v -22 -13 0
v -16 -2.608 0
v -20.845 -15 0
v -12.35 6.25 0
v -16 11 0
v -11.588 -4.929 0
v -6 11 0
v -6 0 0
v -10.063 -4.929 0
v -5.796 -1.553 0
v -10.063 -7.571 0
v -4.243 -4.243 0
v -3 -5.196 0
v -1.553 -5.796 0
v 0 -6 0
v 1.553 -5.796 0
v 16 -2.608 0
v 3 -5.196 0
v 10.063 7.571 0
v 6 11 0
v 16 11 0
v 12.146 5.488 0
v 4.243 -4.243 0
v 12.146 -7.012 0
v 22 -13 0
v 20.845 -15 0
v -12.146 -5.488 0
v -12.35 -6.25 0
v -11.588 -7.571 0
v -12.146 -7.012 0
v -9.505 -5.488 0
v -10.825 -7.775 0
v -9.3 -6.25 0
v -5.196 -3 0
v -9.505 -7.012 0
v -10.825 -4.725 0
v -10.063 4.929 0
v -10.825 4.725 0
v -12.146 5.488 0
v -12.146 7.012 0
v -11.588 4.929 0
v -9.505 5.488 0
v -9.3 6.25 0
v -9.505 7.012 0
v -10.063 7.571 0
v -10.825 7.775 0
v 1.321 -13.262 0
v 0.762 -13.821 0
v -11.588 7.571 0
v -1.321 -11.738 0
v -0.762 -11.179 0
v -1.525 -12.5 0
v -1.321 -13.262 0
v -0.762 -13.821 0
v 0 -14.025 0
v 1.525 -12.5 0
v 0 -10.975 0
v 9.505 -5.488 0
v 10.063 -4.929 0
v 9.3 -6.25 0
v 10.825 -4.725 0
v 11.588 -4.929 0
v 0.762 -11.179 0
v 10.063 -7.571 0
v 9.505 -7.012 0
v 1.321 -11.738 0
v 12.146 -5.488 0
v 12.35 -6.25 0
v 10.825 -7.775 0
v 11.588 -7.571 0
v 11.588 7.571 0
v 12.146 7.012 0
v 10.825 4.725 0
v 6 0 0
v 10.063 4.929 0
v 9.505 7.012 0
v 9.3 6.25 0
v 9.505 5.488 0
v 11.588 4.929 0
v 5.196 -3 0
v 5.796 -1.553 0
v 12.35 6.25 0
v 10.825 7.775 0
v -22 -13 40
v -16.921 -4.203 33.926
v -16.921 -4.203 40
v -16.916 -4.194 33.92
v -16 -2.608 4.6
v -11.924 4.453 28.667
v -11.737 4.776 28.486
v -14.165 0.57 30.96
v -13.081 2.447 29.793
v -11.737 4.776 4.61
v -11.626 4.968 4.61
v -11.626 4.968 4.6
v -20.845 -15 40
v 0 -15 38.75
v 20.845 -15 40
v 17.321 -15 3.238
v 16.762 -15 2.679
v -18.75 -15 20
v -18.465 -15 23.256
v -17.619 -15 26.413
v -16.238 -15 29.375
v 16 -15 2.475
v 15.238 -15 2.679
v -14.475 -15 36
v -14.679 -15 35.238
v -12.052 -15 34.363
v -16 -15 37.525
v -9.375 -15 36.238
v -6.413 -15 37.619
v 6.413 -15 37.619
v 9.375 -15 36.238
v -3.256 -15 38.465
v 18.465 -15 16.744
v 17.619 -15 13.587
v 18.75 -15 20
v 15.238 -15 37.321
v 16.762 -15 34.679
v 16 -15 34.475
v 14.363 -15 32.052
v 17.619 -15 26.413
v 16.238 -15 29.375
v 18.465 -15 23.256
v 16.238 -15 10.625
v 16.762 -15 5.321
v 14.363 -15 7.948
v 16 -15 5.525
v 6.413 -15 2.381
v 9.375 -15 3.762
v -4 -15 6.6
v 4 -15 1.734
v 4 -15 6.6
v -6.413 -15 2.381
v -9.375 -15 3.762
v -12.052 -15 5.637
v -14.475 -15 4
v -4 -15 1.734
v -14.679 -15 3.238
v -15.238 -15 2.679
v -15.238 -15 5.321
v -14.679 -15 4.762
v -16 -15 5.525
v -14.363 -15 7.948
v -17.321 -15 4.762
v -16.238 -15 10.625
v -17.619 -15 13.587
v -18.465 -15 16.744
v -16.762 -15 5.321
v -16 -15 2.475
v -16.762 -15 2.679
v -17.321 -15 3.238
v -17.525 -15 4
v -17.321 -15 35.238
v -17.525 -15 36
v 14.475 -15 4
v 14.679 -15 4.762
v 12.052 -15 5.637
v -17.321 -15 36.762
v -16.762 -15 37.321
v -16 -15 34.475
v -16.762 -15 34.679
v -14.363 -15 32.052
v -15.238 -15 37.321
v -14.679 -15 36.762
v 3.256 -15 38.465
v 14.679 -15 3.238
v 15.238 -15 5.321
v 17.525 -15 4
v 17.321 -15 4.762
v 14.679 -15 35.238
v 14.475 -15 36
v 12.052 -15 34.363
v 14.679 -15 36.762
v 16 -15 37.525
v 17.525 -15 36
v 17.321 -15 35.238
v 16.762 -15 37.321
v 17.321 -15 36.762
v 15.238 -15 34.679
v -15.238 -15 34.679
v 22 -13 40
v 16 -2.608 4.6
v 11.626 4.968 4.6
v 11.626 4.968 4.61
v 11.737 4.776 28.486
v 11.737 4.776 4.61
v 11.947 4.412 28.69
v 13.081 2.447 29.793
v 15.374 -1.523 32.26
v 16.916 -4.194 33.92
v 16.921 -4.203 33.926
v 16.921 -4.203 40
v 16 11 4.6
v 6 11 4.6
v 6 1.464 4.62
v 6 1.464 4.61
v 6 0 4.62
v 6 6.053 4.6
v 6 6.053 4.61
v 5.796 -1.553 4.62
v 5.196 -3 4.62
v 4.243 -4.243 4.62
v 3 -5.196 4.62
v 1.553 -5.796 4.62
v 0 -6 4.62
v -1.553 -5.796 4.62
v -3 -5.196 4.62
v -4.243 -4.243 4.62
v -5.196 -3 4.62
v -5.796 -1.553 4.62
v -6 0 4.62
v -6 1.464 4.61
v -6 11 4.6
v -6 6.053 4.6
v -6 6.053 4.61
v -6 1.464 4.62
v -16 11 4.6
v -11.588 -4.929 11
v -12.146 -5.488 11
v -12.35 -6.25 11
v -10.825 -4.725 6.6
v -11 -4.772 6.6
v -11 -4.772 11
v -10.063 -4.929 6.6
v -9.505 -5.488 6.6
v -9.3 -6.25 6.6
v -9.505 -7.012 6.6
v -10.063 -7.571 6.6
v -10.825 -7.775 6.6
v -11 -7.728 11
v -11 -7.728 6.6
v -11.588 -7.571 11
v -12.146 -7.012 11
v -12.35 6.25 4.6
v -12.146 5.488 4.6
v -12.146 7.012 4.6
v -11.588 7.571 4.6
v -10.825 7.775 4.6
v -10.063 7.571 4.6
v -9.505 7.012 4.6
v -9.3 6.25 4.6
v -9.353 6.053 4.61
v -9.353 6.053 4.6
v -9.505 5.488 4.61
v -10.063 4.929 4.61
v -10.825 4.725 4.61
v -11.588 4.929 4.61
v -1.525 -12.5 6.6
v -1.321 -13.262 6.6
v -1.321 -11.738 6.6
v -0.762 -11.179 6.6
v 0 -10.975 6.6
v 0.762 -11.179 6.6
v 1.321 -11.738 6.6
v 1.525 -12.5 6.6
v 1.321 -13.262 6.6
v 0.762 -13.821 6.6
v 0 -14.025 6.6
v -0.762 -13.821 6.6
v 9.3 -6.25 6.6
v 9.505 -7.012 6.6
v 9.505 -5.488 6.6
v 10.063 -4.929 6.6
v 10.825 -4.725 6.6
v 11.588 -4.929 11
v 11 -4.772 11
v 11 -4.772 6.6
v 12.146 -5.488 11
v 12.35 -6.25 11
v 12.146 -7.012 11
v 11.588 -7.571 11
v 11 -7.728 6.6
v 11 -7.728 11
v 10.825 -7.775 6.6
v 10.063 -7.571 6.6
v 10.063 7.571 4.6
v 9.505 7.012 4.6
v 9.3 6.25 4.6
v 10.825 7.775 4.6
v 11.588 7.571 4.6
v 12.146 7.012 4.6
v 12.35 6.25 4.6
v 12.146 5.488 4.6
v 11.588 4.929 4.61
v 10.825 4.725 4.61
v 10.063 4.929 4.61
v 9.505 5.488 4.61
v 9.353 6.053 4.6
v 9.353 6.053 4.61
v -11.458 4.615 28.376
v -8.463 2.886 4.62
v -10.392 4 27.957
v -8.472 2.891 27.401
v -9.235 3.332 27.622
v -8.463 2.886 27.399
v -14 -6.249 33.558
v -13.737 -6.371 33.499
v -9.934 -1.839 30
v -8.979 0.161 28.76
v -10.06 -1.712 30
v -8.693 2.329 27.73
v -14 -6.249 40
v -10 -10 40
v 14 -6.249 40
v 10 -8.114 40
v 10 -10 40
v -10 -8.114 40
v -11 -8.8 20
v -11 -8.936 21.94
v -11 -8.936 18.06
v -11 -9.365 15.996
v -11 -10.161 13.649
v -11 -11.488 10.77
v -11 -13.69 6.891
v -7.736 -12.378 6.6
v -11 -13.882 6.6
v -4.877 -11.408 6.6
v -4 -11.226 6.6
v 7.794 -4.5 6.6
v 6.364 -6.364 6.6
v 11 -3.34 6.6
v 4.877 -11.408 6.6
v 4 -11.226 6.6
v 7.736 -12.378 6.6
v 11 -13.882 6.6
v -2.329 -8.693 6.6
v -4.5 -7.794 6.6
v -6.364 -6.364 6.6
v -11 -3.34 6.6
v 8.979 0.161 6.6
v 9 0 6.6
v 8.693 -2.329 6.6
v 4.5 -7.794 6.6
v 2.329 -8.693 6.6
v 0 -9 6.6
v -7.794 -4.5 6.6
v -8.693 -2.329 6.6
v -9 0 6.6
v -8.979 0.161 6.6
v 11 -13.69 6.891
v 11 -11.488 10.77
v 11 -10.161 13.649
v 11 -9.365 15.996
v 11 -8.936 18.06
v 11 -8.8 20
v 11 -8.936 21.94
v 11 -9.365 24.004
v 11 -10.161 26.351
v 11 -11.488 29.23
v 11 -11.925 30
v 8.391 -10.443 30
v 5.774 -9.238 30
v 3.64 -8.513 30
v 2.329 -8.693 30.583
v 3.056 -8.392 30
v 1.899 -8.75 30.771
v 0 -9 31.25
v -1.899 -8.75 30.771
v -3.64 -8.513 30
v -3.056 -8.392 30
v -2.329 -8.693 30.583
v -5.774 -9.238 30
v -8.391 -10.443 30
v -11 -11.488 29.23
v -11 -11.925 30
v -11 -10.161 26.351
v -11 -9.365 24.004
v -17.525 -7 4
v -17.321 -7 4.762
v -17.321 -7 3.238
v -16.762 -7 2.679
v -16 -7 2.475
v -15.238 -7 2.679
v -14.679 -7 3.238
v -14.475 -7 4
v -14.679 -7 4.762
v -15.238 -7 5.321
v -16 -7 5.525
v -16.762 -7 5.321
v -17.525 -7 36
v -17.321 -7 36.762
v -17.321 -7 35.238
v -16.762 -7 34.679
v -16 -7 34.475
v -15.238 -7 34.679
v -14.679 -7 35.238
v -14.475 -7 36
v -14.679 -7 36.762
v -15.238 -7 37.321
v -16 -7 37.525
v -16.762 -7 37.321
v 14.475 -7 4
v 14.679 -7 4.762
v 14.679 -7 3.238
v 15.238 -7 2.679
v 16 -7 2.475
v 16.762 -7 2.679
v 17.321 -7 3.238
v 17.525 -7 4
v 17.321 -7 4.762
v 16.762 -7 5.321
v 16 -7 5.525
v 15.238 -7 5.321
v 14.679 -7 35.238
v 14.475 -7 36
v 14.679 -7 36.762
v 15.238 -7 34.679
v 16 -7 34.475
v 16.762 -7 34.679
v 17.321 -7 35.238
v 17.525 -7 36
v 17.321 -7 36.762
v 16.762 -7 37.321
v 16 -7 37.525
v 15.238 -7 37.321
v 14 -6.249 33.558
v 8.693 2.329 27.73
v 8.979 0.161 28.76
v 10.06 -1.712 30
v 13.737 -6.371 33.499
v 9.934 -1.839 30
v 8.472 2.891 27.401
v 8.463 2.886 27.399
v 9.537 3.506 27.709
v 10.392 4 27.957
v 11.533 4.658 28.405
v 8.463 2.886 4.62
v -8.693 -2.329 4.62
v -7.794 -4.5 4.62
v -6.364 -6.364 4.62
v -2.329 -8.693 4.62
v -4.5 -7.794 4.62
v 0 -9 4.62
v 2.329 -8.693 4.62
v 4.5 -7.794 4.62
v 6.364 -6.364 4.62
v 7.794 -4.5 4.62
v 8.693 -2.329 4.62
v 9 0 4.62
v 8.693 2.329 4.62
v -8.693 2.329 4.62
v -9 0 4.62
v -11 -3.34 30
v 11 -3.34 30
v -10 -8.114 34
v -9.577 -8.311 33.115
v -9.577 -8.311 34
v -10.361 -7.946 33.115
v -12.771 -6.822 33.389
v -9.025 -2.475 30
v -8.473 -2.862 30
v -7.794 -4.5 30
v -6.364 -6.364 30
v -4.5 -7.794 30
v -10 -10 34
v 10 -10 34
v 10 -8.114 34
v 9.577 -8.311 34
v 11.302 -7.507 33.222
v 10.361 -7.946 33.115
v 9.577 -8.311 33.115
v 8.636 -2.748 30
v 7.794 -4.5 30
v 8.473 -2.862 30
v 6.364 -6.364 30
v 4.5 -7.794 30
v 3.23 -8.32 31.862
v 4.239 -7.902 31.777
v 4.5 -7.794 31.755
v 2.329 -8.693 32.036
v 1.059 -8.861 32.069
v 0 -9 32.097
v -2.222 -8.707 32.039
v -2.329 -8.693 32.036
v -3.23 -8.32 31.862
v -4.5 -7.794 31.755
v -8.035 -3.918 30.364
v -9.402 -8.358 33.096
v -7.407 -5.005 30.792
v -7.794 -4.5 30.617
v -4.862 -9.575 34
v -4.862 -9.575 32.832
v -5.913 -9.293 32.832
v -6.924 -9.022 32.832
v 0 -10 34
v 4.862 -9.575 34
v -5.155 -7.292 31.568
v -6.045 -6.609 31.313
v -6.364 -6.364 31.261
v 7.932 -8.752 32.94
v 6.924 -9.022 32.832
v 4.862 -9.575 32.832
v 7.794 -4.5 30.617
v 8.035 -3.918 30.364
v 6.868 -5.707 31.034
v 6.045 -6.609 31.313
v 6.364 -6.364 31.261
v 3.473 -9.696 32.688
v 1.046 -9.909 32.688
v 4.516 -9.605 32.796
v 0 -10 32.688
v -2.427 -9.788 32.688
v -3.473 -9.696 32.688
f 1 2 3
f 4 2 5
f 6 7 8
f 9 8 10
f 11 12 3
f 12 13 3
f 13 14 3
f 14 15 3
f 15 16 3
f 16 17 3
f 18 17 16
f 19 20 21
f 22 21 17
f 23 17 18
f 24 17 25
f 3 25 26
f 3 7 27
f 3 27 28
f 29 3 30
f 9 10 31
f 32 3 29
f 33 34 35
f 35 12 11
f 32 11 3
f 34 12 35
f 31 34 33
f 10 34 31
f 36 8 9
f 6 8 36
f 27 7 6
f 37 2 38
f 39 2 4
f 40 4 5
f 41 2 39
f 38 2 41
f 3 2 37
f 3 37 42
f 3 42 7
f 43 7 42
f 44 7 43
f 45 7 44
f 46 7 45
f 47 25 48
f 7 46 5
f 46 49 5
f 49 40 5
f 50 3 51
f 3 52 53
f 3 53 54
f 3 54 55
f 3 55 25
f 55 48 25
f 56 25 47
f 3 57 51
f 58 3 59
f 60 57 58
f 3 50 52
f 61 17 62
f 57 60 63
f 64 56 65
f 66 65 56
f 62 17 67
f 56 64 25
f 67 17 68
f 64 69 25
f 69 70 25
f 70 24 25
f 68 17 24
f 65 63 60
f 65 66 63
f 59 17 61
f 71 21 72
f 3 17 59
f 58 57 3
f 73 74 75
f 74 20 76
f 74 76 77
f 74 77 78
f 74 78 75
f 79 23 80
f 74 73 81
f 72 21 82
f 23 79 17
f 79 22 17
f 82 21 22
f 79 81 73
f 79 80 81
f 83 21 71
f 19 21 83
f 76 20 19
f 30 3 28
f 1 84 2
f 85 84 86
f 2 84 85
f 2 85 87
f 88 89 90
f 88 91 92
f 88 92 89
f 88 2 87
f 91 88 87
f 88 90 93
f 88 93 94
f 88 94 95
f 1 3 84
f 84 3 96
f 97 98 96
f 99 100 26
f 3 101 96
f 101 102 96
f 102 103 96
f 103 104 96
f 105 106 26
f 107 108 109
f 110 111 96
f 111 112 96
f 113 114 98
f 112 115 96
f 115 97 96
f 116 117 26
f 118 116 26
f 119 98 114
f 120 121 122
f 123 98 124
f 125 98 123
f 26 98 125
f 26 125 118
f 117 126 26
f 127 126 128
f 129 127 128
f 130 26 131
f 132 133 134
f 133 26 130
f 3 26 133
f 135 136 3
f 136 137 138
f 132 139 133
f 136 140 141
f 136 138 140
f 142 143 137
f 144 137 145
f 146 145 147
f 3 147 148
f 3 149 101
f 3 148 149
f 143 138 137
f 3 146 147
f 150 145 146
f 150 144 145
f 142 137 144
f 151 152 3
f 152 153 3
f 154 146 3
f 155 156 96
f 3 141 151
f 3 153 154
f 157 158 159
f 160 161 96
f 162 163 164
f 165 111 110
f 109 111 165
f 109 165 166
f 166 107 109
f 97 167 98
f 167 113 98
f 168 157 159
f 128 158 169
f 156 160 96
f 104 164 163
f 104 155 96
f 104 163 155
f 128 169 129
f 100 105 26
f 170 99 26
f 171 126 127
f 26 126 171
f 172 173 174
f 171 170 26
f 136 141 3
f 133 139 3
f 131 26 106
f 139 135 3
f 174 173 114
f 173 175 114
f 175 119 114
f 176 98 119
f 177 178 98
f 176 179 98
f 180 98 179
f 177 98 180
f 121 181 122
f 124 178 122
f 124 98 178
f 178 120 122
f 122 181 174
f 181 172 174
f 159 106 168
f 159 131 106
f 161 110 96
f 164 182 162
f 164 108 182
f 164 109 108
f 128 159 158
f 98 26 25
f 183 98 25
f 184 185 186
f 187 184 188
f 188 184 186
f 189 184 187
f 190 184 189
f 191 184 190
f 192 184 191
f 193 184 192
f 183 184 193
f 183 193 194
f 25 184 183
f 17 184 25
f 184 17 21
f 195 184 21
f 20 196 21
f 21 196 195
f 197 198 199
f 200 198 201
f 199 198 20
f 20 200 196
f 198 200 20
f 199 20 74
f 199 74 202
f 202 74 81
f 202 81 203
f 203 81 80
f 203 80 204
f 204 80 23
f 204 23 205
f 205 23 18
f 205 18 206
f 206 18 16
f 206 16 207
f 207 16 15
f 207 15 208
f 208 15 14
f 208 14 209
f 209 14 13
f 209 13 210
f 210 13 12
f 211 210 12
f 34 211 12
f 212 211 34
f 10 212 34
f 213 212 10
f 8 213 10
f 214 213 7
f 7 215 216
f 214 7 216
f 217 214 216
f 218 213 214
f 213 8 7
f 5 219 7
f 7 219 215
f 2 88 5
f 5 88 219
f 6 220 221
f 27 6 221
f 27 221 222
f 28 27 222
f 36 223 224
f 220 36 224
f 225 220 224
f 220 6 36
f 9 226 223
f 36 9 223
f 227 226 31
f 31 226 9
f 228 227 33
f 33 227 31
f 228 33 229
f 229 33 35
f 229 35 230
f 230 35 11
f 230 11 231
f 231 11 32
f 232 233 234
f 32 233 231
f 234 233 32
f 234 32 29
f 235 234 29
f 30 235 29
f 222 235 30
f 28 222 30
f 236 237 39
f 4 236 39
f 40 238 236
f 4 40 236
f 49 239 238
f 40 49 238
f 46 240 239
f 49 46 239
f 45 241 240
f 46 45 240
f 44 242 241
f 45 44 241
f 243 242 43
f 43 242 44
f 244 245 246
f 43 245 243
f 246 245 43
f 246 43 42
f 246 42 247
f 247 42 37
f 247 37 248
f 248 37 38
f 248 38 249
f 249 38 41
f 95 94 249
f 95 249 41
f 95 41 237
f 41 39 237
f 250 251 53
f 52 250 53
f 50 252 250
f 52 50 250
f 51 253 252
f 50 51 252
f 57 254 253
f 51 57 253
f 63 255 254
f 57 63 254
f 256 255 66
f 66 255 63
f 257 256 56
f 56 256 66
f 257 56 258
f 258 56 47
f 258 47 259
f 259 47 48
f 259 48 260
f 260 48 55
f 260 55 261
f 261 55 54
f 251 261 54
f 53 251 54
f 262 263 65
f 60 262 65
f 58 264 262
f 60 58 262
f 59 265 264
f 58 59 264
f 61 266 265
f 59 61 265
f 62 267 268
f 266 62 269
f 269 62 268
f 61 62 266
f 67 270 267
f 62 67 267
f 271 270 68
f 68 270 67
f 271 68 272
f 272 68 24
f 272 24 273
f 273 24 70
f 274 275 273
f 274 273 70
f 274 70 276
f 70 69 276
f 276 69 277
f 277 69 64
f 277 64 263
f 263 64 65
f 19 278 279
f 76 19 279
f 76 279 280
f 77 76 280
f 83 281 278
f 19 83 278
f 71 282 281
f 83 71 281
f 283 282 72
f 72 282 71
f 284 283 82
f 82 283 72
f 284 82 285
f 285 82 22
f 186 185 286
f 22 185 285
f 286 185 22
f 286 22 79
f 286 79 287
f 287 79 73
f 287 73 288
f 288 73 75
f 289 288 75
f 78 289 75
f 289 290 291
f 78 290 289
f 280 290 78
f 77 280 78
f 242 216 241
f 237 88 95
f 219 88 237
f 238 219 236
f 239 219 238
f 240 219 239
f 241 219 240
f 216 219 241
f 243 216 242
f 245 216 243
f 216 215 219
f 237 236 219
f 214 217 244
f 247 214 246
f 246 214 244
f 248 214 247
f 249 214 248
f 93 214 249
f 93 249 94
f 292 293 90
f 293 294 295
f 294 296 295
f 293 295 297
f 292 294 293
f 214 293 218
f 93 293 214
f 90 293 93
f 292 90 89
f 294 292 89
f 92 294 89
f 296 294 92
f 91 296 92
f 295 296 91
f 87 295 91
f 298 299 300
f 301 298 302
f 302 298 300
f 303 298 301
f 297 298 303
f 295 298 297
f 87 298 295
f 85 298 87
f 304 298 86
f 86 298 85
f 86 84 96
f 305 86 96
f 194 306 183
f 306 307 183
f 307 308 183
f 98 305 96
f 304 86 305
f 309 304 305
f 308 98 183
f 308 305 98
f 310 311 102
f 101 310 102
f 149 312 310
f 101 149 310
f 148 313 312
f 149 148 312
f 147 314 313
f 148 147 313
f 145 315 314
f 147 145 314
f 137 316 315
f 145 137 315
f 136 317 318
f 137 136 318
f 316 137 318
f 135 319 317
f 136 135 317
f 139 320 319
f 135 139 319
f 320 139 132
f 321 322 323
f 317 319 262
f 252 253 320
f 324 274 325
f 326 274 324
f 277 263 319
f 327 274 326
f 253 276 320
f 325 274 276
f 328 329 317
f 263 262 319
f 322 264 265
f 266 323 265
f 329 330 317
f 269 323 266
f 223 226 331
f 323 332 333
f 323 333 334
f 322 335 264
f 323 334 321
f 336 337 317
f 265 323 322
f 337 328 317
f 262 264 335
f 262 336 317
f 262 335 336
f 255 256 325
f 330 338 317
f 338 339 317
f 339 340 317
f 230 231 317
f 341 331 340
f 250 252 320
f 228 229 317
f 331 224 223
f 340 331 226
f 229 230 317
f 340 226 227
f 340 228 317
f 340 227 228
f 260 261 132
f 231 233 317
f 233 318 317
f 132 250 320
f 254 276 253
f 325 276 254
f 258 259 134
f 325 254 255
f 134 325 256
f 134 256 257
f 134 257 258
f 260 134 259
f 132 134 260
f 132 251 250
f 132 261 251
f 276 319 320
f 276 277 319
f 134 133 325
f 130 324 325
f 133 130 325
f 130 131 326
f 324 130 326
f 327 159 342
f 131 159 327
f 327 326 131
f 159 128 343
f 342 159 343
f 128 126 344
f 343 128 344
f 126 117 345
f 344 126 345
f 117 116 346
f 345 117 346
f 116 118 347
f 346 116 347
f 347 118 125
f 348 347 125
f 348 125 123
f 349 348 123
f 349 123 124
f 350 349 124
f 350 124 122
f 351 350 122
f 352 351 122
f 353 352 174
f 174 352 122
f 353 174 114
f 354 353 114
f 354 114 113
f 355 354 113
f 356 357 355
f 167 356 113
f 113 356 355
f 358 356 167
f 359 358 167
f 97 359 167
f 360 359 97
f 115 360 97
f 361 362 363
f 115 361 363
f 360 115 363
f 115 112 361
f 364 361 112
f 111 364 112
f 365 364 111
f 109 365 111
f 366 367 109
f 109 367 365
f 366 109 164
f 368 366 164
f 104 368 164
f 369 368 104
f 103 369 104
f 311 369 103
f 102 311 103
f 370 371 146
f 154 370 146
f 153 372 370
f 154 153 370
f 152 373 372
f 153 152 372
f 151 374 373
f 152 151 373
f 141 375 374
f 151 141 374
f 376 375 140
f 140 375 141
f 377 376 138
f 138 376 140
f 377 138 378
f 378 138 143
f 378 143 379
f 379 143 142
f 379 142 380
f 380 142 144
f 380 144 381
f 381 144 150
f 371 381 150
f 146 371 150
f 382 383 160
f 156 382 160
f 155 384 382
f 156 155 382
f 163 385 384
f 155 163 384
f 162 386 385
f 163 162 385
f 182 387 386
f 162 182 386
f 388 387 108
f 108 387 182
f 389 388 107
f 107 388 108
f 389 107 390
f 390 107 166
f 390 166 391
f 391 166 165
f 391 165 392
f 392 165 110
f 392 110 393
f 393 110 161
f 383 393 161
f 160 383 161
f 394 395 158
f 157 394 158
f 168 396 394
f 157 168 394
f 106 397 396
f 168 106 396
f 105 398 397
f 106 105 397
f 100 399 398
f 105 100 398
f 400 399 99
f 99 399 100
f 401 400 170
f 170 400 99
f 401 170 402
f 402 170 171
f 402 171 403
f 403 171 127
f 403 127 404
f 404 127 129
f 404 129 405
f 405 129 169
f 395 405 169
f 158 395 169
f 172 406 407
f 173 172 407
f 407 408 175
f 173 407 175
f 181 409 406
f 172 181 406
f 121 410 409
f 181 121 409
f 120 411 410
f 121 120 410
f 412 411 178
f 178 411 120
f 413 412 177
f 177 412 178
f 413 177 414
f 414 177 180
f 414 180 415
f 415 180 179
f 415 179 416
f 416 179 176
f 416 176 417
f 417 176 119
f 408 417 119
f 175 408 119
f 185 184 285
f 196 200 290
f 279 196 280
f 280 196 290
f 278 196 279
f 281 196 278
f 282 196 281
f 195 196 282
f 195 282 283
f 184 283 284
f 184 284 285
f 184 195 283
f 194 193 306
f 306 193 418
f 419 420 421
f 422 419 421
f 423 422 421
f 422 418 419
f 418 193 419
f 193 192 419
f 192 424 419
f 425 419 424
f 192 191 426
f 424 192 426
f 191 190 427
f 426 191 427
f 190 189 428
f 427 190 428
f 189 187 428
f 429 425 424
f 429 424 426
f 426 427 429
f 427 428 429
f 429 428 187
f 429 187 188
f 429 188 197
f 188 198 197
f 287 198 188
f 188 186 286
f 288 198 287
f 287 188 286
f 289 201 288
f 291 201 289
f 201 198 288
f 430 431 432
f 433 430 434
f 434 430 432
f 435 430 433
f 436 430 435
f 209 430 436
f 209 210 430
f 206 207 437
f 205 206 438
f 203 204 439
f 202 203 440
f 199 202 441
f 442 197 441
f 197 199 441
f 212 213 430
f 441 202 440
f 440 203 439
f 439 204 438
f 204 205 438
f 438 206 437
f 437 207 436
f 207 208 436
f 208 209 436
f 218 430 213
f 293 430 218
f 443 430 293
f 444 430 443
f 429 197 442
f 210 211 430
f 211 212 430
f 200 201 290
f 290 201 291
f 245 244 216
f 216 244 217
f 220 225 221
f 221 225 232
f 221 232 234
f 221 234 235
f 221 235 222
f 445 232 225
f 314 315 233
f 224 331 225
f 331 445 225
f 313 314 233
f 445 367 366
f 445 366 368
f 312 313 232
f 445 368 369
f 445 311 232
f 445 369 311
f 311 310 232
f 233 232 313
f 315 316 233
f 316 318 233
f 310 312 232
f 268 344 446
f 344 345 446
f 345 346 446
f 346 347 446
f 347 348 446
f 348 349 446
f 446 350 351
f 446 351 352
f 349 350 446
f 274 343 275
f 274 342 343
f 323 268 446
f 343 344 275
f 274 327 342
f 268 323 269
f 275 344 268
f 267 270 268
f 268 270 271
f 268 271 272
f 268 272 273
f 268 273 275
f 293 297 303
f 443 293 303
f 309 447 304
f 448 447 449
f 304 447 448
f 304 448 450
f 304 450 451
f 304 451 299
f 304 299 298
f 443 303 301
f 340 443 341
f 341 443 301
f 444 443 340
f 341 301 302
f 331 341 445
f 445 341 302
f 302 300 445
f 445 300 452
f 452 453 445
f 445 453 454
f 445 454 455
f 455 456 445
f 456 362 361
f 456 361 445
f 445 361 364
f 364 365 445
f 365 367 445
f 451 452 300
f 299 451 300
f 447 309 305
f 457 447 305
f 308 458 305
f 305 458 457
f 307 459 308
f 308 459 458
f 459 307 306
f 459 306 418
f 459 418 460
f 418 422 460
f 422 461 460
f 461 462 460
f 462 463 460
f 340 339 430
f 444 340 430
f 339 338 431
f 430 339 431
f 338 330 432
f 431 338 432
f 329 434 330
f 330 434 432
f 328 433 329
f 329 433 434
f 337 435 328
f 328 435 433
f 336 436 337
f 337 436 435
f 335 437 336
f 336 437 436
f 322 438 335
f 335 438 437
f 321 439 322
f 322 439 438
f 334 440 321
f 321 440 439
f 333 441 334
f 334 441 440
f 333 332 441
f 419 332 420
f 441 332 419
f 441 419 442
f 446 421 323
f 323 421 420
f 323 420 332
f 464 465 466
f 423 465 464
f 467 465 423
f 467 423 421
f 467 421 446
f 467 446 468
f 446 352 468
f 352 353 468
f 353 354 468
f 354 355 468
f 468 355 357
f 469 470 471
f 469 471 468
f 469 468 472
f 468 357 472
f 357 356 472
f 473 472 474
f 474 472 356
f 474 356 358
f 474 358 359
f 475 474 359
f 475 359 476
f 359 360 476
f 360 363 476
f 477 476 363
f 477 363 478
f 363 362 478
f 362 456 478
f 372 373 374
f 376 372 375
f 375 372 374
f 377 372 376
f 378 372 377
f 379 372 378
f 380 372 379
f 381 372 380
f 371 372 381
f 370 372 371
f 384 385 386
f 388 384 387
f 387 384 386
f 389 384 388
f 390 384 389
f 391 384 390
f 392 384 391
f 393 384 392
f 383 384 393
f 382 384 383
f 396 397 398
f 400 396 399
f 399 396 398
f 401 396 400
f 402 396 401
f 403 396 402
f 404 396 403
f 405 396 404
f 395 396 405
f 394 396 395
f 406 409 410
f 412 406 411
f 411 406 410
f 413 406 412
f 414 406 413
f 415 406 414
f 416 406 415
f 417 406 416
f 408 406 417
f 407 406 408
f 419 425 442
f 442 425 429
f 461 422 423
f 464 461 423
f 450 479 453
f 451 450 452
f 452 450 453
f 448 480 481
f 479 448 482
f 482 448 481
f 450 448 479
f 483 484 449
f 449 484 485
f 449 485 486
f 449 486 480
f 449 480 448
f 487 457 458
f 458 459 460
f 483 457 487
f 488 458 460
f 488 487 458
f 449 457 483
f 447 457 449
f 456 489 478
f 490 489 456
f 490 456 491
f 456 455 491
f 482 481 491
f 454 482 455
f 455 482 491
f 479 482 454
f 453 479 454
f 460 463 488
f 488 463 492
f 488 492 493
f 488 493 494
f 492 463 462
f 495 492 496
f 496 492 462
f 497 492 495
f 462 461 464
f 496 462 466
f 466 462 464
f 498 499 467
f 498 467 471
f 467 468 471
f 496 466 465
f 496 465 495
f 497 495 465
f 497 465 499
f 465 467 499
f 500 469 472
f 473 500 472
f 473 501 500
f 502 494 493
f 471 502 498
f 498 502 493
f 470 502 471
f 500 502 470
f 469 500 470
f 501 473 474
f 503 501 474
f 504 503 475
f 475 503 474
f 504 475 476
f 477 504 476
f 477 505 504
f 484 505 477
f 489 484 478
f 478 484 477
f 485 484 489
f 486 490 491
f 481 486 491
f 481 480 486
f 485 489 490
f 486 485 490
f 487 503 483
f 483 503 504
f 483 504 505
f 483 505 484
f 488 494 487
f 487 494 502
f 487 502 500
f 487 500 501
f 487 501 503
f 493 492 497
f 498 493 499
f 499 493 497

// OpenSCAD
// file: configuration.scad
// Increase this if your slicer or printer make holes too tight.
extra_radius = 0.1;

// OD = outside diameter, corner to corner.
m3_nut_od = 6.1;
m3_nut_radius = m3_nut_od/2 + 0.2 + extra_radius;
m3_washer_radius = 3.5 + extra_radius;

// Major diameter of metric 3mm thread.
m3_major = 2.85;
m3_radius = m3_major/2 + extra_radius;
m3_wide_radius = m3_major/2 + extra_radius + 0.2;

// NEMA17 stepper motors.
motor_shaft_diameter = 5;
motor_shaft_radius = motor_shaft_diameter/2 + extra_radius;

// Frame brackets. M3x8mm screws work best with 3.6 mm brackets.
thickness = 3.6;

// OpenBeam or Misumi. Currently only 15x15 mm, but there is a plan
// to make models more parametric and allow 20x20 mm in the future.
extrusion = 15;

// Placement for the NEMA17 stepper motors.
motor_offset = 44;
motor_length = 47;
// main file
include <configuration.scad>;

barrel_radius = 8;
barrel_height = 30;

groove_radius = 6;
groove_height = 4.6;

fan_offset = 15;

module hotend_fan() {
  difference() {
    union() {
      translate([0, 2 - fan_offset, 0])
        cylinder(r=22, h=40, $fn=6);
      translate([0, 0, groove_height/2])
        cube([32, 22, groove_height], center=true);
    }
    // Opposite side cutaway (outgoing airflow).
    translate([0, 38, groove_height + 0.01]) rotate([0, 0, 30])
      cylinder(r=40, h=200, $fn=6);
    // Groove mount insert slot.
    translate([0, 10, 0])
      cube([2*groove_radius, 20, 20], center=true);
    // Keep printed plastic away from the hotend.
    intersection() {
      translate([0, 18, 0]) rotate([0, 0, 30])
        cylinder(r=28, h=100, center=true, $fn=36);
      translate([0, 10, barrel_height-5])
        cylinder(r1=barrel_radius-1, r2=100, h=55, $fn=36);
    }
    // Groove mount.
    cylinder(r=groove_radius, h=200, center=true, $fn=24);
    // J-Head barrel.
    translate([0, 0, groove_height + 0.02])
      cylinder(r=barrel_radius + 1, h=100, $fn=24);
    // Fan mounting surface and screws.
    translate([0, -50 - fan_offset, 0])
      cube([100, 100, 100], center=true);
    for (x = [-16, 16]) {
      for (z = [-16, 16]) {
        translate([x, -fan_offset, z+20]) rotate([90, 0, 0]) #
          cylinder(r=m3_radius, h=16, center=true, $fn=12);
      }
    }
    // Vertical inner space.
    translate([0,0,40])cube([20, 20, 12], center=true);
    intersection() {
      cube([22, 100, 60], center=true);
      translate([0, -12, groove_height + 2])
        cylinder(r=16, h=40, $fn=6);
    }
    // Air funnel.
    difference() {
      translate([0, -1 - fan_offset, 20]) rotate([-90, 0, 0])
        cylinder(r1=20, r2=0, h=16, $fn=36);
      cube([8, 40, 40], center=true);
    }
    for (a = [60:60:359]) {
      rotate([0, 0, a]) translate([0, 12.5, 5]) #
        cylinder(r=m3_radius, h=12, center=true, $fn=12);
    }
  }
}

hotend_fan();

// Hotend barrel.
translate([0, 0, groove_height]) %
  cylinder(r=barrel_radius, h=barrel_height);

// 40mm fan.
translate([0, -5 - fan_offset, 20]) % difference() {
  cube([40, 10, 40], center=true);
  rotate([90, 0, 0,]) cylinder(r=19, h=20, center=true);
}
